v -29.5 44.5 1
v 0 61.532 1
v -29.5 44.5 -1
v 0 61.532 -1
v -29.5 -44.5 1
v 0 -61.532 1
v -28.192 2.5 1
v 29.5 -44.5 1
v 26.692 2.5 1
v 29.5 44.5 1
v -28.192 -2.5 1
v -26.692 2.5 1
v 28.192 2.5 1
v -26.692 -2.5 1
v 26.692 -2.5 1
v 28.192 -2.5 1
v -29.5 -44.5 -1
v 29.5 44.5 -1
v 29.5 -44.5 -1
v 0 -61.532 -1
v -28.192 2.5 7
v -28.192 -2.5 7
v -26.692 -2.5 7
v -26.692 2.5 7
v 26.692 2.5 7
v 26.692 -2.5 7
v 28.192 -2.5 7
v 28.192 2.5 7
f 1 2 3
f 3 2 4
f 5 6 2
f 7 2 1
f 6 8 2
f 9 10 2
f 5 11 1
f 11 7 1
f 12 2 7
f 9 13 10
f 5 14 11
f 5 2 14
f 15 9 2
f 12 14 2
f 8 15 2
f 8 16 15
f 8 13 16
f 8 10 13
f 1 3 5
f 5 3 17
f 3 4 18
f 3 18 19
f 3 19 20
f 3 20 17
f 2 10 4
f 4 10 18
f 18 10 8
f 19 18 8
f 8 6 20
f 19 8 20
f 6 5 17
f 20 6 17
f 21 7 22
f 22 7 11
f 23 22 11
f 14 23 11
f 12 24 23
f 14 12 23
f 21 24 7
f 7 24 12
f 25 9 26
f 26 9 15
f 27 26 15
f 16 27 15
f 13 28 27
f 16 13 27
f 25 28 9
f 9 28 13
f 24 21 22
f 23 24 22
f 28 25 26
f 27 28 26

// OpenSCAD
$fn = 100;

// Functions for calculating the half-hexagons
function edge_length(width) = (width/2) / cos(30); // CAH
function point_height(width) = (width/2) * tan(30); // TOA
function leg(width) = edge_length(width) * sqrt(1/2);
function x_offset(width) = (width/2) - leg(width) * cos(15);
function y_offset(width, length) = length/2 - (leg(width) * sin(15));

// Core size variables
scaling = 1;
h = (35) * scaling;
w = (55) * scaling;
l = (85) * scaling;

// Values for interior space
h_pad = 2;
w_pad = 4;
l_pad = 4;

// The lid
h_lid = 2;

rotate([180,00,0]){
difference(){
union(){
cube([w+w_pad, l+l_pad, h_lid], center=true); // Center Cube
translate([-(w+w_pad)/2.15,0,-h_lid*1.5]){cube([1.5, 5, 8], center=true);} // The teeth
translate([(w+w_pad)/2.15,0,-h_lid*1.5]){cube([1.5, 5, 8], center=true);}
translate([x_offset(w+w_pad),-y_offset(w+w_pad,l+l_pad),0]){
	rotate([0,0,30]) cube([edge_length(w+w_pad),edge_length(w+w_pad),h_lid], center=true);
}
translate([-x_offset(w+w_pad),-y_offset(w+w_pad,l+l_pad),0]){
	rotate([0,0,-30]) cube([edge_length(w+w_pad),edge_length(w+w_pad),h_lid], center=true);
}

translate([x_offset(w+w_pad),y_offset(w+w_pad,l+l_pad),0]){
	rotate([0,0,-30]) cube([edge_length(w+w_pad),edge_length(w+w_pad),h_lid], center=true);
}
translate([-x_offset(w+w_pad),y_offset(w+w_pad,l+l_pad),0]){
	rotate([0,0,30]) cube([edge_length(w+w_pad),edge_length(w+w_pad),h_lid], center=true);
}}
}}
